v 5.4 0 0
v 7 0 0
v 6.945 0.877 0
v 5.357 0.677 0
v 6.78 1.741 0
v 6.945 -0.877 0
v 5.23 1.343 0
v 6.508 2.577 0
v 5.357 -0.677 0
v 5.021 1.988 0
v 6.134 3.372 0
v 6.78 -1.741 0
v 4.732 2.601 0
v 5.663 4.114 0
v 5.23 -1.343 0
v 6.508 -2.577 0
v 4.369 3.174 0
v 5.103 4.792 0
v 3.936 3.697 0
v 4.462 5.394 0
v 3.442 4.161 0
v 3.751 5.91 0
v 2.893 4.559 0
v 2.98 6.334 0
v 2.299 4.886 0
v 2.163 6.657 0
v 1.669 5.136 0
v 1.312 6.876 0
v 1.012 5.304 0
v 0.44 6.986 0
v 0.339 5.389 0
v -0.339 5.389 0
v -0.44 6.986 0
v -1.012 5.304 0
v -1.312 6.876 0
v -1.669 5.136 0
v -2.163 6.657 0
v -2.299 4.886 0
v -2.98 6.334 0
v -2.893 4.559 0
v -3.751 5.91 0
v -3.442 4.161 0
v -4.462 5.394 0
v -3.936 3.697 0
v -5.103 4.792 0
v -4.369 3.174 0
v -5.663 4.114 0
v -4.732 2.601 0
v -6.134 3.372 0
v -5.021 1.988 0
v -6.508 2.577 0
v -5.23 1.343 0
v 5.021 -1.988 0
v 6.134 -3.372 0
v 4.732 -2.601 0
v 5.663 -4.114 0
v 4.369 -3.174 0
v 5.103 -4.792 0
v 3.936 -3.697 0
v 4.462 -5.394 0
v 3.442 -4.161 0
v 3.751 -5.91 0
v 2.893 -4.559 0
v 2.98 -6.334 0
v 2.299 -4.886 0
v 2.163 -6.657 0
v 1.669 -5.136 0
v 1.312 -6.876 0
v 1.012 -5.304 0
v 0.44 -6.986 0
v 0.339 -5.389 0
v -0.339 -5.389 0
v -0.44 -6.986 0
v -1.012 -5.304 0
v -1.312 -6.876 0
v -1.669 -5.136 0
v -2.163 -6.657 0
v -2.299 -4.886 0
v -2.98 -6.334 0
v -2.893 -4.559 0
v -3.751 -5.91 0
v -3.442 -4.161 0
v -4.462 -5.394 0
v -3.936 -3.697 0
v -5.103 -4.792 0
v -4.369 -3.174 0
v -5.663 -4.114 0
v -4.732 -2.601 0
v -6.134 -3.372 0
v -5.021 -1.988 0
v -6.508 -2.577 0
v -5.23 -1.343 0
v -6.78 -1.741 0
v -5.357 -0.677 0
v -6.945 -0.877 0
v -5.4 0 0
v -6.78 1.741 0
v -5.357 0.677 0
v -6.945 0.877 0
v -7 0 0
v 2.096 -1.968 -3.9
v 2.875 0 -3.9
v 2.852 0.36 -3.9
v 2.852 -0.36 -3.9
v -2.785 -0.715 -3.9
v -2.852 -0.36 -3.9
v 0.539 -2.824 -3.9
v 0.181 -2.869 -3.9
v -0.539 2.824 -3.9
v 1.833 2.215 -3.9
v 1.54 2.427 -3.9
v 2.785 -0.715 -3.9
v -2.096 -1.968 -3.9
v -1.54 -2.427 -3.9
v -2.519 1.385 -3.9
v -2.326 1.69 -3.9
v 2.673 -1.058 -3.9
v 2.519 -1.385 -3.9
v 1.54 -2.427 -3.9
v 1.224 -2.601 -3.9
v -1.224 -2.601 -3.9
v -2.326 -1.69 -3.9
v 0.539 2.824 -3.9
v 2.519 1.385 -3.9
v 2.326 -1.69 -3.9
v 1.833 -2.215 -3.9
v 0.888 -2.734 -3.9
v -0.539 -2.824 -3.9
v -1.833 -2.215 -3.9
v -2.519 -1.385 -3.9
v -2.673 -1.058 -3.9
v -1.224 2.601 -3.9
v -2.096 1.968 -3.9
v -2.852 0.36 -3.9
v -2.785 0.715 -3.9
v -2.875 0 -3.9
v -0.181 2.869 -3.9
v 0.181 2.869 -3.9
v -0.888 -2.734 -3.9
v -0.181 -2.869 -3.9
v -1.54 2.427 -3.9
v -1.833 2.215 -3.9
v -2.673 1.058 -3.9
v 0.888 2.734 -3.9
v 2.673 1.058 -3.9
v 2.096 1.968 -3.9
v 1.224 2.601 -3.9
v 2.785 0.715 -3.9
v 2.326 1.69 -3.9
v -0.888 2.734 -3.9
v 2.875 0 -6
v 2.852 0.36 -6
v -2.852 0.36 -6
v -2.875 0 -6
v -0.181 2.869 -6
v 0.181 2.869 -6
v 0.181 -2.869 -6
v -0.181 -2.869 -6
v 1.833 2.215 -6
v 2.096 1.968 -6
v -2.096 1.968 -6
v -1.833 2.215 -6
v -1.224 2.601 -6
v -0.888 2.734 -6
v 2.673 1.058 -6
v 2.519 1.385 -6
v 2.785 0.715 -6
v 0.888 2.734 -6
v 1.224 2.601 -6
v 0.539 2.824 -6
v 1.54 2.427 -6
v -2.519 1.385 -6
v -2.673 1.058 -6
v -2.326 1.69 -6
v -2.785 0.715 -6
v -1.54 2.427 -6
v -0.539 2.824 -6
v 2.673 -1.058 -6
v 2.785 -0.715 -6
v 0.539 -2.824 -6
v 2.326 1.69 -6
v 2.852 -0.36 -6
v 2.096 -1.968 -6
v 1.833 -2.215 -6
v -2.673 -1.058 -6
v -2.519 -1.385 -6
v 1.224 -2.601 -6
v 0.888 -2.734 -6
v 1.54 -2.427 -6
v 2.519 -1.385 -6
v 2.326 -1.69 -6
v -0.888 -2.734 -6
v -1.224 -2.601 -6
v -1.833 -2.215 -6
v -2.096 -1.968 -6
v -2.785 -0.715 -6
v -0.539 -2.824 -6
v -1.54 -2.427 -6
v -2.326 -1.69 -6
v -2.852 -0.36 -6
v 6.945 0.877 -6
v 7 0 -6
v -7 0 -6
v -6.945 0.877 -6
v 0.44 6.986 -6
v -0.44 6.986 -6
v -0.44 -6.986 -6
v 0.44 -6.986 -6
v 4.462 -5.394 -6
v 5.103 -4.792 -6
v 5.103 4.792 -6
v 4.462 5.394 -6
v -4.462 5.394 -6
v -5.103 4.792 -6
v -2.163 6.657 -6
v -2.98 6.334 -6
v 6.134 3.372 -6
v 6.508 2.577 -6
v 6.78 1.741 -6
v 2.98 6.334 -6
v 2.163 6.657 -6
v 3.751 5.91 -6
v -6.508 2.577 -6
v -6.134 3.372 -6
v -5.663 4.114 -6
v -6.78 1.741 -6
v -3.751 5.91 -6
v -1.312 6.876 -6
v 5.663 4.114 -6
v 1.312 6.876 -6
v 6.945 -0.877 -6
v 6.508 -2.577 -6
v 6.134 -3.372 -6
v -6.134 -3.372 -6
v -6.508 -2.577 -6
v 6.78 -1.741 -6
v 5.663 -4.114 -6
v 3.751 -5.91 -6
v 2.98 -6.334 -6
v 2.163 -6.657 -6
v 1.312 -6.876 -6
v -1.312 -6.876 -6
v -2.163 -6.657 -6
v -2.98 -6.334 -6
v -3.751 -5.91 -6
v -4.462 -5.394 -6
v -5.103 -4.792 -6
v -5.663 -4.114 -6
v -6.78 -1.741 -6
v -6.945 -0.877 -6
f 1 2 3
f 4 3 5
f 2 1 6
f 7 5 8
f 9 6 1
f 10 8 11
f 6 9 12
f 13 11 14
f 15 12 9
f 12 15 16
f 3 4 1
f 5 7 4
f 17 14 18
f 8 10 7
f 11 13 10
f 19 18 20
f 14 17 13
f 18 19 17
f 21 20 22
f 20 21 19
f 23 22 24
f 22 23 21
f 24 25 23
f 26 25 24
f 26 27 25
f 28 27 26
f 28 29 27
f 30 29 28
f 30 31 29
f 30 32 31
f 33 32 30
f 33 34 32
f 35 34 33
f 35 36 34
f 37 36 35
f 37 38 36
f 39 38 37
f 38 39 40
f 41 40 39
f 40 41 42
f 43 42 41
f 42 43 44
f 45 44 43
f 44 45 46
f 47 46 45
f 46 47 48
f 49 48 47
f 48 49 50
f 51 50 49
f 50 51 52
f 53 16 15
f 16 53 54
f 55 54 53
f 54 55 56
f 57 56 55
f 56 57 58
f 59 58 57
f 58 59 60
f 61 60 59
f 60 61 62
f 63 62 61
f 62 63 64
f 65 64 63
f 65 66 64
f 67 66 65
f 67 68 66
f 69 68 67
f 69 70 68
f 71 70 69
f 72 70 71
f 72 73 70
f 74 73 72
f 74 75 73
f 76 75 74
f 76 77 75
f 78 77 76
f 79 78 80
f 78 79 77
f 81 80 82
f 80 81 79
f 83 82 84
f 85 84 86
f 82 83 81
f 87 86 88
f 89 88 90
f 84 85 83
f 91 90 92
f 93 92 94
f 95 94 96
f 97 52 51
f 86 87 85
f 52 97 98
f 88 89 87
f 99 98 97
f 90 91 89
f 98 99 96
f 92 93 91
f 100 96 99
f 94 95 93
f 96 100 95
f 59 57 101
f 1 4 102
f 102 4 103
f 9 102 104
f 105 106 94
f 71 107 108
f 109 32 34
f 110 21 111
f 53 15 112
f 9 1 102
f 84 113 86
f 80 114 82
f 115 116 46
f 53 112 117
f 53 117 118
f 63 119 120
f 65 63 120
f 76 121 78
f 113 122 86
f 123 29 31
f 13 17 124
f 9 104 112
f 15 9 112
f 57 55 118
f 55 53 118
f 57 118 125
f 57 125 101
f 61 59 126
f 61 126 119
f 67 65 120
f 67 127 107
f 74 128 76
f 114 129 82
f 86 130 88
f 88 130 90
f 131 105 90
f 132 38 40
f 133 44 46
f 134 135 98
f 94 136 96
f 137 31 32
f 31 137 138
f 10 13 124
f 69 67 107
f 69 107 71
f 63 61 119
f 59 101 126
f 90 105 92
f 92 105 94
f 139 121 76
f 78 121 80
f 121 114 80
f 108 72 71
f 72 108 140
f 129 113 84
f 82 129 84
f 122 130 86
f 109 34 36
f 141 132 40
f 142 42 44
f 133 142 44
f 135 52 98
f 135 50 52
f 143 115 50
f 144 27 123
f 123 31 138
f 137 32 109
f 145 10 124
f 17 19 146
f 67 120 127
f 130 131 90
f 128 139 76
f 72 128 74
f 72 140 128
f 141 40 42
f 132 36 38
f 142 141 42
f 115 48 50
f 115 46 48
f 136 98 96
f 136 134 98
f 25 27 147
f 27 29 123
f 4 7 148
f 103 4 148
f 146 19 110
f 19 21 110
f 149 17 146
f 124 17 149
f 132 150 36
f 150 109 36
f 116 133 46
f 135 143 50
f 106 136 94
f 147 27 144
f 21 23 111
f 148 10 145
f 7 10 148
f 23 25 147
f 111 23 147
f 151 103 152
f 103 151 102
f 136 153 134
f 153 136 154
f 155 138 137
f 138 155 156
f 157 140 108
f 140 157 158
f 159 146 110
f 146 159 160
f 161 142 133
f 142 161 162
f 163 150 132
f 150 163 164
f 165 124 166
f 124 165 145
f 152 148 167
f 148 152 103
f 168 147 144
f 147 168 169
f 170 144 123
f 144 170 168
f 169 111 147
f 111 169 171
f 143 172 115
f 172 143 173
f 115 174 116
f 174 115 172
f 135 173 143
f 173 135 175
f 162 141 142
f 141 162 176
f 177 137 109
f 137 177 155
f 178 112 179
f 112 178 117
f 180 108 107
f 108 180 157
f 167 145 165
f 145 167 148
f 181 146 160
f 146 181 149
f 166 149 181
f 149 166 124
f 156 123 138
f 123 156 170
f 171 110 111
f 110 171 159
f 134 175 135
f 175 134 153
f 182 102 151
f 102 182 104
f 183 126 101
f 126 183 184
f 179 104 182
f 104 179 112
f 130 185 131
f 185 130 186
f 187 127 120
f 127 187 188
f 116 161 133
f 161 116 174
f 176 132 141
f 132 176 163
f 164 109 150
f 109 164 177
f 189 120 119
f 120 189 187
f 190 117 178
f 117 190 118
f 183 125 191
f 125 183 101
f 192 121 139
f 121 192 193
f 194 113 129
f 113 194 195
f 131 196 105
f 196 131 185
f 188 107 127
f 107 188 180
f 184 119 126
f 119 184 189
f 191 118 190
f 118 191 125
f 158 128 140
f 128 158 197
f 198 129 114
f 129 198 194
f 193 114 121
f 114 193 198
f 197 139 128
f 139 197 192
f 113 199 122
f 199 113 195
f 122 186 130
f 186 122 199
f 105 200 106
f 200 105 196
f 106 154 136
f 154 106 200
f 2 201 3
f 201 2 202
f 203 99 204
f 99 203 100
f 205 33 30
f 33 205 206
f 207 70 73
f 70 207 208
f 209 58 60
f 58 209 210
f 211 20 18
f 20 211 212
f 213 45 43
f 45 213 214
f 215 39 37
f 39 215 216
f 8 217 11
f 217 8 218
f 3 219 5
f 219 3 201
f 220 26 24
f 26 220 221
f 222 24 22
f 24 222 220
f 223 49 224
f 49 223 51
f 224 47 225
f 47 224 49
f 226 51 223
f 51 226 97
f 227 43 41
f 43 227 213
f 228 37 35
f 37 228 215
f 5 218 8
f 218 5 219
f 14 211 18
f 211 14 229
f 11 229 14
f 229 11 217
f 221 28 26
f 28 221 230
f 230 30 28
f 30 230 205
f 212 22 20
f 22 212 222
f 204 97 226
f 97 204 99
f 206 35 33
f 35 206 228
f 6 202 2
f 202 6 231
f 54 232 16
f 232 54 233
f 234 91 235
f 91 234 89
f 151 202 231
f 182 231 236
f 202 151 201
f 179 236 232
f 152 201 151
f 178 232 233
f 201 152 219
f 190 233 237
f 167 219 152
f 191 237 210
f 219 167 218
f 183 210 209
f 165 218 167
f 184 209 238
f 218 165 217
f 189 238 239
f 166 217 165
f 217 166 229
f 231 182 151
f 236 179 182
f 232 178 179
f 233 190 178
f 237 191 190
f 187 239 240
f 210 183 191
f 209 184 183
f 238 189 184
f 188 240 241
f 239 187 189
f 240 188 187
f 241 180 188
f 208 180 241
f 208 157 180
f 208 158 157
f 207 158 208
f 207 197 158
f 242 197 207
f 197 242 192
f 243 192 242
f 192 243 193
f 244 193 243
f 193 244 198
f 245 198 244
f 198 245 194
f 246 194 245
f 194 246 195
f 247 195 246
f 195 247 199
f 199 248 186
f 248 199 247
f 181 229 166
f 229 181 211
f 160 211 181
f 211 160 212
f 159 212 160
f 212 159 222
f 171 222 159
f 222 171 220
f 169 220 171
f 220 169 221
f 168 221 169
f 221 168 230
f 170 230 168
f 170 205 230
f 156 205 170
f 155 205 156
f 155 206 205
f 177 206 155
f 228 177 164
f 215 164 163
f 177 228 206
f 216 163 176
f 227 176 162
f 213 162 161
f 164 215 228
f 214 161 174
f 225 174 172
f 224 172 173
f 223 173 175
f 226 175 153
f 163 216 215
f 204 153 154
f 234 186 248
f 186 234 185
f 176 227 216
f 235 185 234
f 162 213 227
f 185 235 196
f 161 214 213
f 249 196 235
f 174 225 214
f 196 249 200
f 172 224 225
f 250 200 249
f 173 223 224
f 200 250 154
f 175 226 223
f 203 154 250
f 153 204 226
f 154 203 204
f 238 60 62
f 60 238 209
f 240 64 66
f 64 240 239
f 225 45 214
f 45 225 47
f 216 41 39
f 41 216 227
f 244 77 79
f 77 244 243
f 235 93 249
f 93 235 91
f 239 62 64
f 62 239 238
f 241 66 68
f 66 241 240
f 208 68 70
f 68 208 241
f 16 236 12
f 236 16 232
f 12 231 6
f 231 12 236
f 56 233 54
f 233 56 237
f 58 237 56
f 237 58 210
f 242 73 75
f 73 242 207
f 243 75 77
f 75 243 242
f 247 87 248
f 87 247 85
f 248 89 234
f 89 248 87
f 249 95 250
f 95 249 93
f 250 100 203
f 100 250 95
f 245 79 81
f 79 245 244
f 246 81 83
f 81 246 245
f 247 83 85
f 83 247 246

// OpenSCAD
$fn = 50;


difference() {
	union() {
		translate(v = [0, 0, -6.0000000000]) {
			cylinder(h = 6, r = 7.0000000000);
		}
	}
	union() {
		translate(v = [0, 0, 0]) {
			rotate(a = [0, 0, 0]) {
				difference() {
					union() {
						translate(v = [0, 0, -9.0000000000]) {
							cylinder(h = 9, r = 2.6000000000);
						}
						translate(v = [0, 0, -3.9000000000]) {
							cylinder(h = 3.9000000000, r1 = 2.8750000000, r2 = 5.4000000000);
						}
						translate(v = [0, 0, -9.0000000000]) {
							cylinder(h = 9, r = 2.8750000000);
						}
						translate(v = [0, 0, -9.0000000000]) {
							cylinder(h = 9, r = 2.6000000000);
						}
					}
					union();
				}
			}
		}
	}
}
